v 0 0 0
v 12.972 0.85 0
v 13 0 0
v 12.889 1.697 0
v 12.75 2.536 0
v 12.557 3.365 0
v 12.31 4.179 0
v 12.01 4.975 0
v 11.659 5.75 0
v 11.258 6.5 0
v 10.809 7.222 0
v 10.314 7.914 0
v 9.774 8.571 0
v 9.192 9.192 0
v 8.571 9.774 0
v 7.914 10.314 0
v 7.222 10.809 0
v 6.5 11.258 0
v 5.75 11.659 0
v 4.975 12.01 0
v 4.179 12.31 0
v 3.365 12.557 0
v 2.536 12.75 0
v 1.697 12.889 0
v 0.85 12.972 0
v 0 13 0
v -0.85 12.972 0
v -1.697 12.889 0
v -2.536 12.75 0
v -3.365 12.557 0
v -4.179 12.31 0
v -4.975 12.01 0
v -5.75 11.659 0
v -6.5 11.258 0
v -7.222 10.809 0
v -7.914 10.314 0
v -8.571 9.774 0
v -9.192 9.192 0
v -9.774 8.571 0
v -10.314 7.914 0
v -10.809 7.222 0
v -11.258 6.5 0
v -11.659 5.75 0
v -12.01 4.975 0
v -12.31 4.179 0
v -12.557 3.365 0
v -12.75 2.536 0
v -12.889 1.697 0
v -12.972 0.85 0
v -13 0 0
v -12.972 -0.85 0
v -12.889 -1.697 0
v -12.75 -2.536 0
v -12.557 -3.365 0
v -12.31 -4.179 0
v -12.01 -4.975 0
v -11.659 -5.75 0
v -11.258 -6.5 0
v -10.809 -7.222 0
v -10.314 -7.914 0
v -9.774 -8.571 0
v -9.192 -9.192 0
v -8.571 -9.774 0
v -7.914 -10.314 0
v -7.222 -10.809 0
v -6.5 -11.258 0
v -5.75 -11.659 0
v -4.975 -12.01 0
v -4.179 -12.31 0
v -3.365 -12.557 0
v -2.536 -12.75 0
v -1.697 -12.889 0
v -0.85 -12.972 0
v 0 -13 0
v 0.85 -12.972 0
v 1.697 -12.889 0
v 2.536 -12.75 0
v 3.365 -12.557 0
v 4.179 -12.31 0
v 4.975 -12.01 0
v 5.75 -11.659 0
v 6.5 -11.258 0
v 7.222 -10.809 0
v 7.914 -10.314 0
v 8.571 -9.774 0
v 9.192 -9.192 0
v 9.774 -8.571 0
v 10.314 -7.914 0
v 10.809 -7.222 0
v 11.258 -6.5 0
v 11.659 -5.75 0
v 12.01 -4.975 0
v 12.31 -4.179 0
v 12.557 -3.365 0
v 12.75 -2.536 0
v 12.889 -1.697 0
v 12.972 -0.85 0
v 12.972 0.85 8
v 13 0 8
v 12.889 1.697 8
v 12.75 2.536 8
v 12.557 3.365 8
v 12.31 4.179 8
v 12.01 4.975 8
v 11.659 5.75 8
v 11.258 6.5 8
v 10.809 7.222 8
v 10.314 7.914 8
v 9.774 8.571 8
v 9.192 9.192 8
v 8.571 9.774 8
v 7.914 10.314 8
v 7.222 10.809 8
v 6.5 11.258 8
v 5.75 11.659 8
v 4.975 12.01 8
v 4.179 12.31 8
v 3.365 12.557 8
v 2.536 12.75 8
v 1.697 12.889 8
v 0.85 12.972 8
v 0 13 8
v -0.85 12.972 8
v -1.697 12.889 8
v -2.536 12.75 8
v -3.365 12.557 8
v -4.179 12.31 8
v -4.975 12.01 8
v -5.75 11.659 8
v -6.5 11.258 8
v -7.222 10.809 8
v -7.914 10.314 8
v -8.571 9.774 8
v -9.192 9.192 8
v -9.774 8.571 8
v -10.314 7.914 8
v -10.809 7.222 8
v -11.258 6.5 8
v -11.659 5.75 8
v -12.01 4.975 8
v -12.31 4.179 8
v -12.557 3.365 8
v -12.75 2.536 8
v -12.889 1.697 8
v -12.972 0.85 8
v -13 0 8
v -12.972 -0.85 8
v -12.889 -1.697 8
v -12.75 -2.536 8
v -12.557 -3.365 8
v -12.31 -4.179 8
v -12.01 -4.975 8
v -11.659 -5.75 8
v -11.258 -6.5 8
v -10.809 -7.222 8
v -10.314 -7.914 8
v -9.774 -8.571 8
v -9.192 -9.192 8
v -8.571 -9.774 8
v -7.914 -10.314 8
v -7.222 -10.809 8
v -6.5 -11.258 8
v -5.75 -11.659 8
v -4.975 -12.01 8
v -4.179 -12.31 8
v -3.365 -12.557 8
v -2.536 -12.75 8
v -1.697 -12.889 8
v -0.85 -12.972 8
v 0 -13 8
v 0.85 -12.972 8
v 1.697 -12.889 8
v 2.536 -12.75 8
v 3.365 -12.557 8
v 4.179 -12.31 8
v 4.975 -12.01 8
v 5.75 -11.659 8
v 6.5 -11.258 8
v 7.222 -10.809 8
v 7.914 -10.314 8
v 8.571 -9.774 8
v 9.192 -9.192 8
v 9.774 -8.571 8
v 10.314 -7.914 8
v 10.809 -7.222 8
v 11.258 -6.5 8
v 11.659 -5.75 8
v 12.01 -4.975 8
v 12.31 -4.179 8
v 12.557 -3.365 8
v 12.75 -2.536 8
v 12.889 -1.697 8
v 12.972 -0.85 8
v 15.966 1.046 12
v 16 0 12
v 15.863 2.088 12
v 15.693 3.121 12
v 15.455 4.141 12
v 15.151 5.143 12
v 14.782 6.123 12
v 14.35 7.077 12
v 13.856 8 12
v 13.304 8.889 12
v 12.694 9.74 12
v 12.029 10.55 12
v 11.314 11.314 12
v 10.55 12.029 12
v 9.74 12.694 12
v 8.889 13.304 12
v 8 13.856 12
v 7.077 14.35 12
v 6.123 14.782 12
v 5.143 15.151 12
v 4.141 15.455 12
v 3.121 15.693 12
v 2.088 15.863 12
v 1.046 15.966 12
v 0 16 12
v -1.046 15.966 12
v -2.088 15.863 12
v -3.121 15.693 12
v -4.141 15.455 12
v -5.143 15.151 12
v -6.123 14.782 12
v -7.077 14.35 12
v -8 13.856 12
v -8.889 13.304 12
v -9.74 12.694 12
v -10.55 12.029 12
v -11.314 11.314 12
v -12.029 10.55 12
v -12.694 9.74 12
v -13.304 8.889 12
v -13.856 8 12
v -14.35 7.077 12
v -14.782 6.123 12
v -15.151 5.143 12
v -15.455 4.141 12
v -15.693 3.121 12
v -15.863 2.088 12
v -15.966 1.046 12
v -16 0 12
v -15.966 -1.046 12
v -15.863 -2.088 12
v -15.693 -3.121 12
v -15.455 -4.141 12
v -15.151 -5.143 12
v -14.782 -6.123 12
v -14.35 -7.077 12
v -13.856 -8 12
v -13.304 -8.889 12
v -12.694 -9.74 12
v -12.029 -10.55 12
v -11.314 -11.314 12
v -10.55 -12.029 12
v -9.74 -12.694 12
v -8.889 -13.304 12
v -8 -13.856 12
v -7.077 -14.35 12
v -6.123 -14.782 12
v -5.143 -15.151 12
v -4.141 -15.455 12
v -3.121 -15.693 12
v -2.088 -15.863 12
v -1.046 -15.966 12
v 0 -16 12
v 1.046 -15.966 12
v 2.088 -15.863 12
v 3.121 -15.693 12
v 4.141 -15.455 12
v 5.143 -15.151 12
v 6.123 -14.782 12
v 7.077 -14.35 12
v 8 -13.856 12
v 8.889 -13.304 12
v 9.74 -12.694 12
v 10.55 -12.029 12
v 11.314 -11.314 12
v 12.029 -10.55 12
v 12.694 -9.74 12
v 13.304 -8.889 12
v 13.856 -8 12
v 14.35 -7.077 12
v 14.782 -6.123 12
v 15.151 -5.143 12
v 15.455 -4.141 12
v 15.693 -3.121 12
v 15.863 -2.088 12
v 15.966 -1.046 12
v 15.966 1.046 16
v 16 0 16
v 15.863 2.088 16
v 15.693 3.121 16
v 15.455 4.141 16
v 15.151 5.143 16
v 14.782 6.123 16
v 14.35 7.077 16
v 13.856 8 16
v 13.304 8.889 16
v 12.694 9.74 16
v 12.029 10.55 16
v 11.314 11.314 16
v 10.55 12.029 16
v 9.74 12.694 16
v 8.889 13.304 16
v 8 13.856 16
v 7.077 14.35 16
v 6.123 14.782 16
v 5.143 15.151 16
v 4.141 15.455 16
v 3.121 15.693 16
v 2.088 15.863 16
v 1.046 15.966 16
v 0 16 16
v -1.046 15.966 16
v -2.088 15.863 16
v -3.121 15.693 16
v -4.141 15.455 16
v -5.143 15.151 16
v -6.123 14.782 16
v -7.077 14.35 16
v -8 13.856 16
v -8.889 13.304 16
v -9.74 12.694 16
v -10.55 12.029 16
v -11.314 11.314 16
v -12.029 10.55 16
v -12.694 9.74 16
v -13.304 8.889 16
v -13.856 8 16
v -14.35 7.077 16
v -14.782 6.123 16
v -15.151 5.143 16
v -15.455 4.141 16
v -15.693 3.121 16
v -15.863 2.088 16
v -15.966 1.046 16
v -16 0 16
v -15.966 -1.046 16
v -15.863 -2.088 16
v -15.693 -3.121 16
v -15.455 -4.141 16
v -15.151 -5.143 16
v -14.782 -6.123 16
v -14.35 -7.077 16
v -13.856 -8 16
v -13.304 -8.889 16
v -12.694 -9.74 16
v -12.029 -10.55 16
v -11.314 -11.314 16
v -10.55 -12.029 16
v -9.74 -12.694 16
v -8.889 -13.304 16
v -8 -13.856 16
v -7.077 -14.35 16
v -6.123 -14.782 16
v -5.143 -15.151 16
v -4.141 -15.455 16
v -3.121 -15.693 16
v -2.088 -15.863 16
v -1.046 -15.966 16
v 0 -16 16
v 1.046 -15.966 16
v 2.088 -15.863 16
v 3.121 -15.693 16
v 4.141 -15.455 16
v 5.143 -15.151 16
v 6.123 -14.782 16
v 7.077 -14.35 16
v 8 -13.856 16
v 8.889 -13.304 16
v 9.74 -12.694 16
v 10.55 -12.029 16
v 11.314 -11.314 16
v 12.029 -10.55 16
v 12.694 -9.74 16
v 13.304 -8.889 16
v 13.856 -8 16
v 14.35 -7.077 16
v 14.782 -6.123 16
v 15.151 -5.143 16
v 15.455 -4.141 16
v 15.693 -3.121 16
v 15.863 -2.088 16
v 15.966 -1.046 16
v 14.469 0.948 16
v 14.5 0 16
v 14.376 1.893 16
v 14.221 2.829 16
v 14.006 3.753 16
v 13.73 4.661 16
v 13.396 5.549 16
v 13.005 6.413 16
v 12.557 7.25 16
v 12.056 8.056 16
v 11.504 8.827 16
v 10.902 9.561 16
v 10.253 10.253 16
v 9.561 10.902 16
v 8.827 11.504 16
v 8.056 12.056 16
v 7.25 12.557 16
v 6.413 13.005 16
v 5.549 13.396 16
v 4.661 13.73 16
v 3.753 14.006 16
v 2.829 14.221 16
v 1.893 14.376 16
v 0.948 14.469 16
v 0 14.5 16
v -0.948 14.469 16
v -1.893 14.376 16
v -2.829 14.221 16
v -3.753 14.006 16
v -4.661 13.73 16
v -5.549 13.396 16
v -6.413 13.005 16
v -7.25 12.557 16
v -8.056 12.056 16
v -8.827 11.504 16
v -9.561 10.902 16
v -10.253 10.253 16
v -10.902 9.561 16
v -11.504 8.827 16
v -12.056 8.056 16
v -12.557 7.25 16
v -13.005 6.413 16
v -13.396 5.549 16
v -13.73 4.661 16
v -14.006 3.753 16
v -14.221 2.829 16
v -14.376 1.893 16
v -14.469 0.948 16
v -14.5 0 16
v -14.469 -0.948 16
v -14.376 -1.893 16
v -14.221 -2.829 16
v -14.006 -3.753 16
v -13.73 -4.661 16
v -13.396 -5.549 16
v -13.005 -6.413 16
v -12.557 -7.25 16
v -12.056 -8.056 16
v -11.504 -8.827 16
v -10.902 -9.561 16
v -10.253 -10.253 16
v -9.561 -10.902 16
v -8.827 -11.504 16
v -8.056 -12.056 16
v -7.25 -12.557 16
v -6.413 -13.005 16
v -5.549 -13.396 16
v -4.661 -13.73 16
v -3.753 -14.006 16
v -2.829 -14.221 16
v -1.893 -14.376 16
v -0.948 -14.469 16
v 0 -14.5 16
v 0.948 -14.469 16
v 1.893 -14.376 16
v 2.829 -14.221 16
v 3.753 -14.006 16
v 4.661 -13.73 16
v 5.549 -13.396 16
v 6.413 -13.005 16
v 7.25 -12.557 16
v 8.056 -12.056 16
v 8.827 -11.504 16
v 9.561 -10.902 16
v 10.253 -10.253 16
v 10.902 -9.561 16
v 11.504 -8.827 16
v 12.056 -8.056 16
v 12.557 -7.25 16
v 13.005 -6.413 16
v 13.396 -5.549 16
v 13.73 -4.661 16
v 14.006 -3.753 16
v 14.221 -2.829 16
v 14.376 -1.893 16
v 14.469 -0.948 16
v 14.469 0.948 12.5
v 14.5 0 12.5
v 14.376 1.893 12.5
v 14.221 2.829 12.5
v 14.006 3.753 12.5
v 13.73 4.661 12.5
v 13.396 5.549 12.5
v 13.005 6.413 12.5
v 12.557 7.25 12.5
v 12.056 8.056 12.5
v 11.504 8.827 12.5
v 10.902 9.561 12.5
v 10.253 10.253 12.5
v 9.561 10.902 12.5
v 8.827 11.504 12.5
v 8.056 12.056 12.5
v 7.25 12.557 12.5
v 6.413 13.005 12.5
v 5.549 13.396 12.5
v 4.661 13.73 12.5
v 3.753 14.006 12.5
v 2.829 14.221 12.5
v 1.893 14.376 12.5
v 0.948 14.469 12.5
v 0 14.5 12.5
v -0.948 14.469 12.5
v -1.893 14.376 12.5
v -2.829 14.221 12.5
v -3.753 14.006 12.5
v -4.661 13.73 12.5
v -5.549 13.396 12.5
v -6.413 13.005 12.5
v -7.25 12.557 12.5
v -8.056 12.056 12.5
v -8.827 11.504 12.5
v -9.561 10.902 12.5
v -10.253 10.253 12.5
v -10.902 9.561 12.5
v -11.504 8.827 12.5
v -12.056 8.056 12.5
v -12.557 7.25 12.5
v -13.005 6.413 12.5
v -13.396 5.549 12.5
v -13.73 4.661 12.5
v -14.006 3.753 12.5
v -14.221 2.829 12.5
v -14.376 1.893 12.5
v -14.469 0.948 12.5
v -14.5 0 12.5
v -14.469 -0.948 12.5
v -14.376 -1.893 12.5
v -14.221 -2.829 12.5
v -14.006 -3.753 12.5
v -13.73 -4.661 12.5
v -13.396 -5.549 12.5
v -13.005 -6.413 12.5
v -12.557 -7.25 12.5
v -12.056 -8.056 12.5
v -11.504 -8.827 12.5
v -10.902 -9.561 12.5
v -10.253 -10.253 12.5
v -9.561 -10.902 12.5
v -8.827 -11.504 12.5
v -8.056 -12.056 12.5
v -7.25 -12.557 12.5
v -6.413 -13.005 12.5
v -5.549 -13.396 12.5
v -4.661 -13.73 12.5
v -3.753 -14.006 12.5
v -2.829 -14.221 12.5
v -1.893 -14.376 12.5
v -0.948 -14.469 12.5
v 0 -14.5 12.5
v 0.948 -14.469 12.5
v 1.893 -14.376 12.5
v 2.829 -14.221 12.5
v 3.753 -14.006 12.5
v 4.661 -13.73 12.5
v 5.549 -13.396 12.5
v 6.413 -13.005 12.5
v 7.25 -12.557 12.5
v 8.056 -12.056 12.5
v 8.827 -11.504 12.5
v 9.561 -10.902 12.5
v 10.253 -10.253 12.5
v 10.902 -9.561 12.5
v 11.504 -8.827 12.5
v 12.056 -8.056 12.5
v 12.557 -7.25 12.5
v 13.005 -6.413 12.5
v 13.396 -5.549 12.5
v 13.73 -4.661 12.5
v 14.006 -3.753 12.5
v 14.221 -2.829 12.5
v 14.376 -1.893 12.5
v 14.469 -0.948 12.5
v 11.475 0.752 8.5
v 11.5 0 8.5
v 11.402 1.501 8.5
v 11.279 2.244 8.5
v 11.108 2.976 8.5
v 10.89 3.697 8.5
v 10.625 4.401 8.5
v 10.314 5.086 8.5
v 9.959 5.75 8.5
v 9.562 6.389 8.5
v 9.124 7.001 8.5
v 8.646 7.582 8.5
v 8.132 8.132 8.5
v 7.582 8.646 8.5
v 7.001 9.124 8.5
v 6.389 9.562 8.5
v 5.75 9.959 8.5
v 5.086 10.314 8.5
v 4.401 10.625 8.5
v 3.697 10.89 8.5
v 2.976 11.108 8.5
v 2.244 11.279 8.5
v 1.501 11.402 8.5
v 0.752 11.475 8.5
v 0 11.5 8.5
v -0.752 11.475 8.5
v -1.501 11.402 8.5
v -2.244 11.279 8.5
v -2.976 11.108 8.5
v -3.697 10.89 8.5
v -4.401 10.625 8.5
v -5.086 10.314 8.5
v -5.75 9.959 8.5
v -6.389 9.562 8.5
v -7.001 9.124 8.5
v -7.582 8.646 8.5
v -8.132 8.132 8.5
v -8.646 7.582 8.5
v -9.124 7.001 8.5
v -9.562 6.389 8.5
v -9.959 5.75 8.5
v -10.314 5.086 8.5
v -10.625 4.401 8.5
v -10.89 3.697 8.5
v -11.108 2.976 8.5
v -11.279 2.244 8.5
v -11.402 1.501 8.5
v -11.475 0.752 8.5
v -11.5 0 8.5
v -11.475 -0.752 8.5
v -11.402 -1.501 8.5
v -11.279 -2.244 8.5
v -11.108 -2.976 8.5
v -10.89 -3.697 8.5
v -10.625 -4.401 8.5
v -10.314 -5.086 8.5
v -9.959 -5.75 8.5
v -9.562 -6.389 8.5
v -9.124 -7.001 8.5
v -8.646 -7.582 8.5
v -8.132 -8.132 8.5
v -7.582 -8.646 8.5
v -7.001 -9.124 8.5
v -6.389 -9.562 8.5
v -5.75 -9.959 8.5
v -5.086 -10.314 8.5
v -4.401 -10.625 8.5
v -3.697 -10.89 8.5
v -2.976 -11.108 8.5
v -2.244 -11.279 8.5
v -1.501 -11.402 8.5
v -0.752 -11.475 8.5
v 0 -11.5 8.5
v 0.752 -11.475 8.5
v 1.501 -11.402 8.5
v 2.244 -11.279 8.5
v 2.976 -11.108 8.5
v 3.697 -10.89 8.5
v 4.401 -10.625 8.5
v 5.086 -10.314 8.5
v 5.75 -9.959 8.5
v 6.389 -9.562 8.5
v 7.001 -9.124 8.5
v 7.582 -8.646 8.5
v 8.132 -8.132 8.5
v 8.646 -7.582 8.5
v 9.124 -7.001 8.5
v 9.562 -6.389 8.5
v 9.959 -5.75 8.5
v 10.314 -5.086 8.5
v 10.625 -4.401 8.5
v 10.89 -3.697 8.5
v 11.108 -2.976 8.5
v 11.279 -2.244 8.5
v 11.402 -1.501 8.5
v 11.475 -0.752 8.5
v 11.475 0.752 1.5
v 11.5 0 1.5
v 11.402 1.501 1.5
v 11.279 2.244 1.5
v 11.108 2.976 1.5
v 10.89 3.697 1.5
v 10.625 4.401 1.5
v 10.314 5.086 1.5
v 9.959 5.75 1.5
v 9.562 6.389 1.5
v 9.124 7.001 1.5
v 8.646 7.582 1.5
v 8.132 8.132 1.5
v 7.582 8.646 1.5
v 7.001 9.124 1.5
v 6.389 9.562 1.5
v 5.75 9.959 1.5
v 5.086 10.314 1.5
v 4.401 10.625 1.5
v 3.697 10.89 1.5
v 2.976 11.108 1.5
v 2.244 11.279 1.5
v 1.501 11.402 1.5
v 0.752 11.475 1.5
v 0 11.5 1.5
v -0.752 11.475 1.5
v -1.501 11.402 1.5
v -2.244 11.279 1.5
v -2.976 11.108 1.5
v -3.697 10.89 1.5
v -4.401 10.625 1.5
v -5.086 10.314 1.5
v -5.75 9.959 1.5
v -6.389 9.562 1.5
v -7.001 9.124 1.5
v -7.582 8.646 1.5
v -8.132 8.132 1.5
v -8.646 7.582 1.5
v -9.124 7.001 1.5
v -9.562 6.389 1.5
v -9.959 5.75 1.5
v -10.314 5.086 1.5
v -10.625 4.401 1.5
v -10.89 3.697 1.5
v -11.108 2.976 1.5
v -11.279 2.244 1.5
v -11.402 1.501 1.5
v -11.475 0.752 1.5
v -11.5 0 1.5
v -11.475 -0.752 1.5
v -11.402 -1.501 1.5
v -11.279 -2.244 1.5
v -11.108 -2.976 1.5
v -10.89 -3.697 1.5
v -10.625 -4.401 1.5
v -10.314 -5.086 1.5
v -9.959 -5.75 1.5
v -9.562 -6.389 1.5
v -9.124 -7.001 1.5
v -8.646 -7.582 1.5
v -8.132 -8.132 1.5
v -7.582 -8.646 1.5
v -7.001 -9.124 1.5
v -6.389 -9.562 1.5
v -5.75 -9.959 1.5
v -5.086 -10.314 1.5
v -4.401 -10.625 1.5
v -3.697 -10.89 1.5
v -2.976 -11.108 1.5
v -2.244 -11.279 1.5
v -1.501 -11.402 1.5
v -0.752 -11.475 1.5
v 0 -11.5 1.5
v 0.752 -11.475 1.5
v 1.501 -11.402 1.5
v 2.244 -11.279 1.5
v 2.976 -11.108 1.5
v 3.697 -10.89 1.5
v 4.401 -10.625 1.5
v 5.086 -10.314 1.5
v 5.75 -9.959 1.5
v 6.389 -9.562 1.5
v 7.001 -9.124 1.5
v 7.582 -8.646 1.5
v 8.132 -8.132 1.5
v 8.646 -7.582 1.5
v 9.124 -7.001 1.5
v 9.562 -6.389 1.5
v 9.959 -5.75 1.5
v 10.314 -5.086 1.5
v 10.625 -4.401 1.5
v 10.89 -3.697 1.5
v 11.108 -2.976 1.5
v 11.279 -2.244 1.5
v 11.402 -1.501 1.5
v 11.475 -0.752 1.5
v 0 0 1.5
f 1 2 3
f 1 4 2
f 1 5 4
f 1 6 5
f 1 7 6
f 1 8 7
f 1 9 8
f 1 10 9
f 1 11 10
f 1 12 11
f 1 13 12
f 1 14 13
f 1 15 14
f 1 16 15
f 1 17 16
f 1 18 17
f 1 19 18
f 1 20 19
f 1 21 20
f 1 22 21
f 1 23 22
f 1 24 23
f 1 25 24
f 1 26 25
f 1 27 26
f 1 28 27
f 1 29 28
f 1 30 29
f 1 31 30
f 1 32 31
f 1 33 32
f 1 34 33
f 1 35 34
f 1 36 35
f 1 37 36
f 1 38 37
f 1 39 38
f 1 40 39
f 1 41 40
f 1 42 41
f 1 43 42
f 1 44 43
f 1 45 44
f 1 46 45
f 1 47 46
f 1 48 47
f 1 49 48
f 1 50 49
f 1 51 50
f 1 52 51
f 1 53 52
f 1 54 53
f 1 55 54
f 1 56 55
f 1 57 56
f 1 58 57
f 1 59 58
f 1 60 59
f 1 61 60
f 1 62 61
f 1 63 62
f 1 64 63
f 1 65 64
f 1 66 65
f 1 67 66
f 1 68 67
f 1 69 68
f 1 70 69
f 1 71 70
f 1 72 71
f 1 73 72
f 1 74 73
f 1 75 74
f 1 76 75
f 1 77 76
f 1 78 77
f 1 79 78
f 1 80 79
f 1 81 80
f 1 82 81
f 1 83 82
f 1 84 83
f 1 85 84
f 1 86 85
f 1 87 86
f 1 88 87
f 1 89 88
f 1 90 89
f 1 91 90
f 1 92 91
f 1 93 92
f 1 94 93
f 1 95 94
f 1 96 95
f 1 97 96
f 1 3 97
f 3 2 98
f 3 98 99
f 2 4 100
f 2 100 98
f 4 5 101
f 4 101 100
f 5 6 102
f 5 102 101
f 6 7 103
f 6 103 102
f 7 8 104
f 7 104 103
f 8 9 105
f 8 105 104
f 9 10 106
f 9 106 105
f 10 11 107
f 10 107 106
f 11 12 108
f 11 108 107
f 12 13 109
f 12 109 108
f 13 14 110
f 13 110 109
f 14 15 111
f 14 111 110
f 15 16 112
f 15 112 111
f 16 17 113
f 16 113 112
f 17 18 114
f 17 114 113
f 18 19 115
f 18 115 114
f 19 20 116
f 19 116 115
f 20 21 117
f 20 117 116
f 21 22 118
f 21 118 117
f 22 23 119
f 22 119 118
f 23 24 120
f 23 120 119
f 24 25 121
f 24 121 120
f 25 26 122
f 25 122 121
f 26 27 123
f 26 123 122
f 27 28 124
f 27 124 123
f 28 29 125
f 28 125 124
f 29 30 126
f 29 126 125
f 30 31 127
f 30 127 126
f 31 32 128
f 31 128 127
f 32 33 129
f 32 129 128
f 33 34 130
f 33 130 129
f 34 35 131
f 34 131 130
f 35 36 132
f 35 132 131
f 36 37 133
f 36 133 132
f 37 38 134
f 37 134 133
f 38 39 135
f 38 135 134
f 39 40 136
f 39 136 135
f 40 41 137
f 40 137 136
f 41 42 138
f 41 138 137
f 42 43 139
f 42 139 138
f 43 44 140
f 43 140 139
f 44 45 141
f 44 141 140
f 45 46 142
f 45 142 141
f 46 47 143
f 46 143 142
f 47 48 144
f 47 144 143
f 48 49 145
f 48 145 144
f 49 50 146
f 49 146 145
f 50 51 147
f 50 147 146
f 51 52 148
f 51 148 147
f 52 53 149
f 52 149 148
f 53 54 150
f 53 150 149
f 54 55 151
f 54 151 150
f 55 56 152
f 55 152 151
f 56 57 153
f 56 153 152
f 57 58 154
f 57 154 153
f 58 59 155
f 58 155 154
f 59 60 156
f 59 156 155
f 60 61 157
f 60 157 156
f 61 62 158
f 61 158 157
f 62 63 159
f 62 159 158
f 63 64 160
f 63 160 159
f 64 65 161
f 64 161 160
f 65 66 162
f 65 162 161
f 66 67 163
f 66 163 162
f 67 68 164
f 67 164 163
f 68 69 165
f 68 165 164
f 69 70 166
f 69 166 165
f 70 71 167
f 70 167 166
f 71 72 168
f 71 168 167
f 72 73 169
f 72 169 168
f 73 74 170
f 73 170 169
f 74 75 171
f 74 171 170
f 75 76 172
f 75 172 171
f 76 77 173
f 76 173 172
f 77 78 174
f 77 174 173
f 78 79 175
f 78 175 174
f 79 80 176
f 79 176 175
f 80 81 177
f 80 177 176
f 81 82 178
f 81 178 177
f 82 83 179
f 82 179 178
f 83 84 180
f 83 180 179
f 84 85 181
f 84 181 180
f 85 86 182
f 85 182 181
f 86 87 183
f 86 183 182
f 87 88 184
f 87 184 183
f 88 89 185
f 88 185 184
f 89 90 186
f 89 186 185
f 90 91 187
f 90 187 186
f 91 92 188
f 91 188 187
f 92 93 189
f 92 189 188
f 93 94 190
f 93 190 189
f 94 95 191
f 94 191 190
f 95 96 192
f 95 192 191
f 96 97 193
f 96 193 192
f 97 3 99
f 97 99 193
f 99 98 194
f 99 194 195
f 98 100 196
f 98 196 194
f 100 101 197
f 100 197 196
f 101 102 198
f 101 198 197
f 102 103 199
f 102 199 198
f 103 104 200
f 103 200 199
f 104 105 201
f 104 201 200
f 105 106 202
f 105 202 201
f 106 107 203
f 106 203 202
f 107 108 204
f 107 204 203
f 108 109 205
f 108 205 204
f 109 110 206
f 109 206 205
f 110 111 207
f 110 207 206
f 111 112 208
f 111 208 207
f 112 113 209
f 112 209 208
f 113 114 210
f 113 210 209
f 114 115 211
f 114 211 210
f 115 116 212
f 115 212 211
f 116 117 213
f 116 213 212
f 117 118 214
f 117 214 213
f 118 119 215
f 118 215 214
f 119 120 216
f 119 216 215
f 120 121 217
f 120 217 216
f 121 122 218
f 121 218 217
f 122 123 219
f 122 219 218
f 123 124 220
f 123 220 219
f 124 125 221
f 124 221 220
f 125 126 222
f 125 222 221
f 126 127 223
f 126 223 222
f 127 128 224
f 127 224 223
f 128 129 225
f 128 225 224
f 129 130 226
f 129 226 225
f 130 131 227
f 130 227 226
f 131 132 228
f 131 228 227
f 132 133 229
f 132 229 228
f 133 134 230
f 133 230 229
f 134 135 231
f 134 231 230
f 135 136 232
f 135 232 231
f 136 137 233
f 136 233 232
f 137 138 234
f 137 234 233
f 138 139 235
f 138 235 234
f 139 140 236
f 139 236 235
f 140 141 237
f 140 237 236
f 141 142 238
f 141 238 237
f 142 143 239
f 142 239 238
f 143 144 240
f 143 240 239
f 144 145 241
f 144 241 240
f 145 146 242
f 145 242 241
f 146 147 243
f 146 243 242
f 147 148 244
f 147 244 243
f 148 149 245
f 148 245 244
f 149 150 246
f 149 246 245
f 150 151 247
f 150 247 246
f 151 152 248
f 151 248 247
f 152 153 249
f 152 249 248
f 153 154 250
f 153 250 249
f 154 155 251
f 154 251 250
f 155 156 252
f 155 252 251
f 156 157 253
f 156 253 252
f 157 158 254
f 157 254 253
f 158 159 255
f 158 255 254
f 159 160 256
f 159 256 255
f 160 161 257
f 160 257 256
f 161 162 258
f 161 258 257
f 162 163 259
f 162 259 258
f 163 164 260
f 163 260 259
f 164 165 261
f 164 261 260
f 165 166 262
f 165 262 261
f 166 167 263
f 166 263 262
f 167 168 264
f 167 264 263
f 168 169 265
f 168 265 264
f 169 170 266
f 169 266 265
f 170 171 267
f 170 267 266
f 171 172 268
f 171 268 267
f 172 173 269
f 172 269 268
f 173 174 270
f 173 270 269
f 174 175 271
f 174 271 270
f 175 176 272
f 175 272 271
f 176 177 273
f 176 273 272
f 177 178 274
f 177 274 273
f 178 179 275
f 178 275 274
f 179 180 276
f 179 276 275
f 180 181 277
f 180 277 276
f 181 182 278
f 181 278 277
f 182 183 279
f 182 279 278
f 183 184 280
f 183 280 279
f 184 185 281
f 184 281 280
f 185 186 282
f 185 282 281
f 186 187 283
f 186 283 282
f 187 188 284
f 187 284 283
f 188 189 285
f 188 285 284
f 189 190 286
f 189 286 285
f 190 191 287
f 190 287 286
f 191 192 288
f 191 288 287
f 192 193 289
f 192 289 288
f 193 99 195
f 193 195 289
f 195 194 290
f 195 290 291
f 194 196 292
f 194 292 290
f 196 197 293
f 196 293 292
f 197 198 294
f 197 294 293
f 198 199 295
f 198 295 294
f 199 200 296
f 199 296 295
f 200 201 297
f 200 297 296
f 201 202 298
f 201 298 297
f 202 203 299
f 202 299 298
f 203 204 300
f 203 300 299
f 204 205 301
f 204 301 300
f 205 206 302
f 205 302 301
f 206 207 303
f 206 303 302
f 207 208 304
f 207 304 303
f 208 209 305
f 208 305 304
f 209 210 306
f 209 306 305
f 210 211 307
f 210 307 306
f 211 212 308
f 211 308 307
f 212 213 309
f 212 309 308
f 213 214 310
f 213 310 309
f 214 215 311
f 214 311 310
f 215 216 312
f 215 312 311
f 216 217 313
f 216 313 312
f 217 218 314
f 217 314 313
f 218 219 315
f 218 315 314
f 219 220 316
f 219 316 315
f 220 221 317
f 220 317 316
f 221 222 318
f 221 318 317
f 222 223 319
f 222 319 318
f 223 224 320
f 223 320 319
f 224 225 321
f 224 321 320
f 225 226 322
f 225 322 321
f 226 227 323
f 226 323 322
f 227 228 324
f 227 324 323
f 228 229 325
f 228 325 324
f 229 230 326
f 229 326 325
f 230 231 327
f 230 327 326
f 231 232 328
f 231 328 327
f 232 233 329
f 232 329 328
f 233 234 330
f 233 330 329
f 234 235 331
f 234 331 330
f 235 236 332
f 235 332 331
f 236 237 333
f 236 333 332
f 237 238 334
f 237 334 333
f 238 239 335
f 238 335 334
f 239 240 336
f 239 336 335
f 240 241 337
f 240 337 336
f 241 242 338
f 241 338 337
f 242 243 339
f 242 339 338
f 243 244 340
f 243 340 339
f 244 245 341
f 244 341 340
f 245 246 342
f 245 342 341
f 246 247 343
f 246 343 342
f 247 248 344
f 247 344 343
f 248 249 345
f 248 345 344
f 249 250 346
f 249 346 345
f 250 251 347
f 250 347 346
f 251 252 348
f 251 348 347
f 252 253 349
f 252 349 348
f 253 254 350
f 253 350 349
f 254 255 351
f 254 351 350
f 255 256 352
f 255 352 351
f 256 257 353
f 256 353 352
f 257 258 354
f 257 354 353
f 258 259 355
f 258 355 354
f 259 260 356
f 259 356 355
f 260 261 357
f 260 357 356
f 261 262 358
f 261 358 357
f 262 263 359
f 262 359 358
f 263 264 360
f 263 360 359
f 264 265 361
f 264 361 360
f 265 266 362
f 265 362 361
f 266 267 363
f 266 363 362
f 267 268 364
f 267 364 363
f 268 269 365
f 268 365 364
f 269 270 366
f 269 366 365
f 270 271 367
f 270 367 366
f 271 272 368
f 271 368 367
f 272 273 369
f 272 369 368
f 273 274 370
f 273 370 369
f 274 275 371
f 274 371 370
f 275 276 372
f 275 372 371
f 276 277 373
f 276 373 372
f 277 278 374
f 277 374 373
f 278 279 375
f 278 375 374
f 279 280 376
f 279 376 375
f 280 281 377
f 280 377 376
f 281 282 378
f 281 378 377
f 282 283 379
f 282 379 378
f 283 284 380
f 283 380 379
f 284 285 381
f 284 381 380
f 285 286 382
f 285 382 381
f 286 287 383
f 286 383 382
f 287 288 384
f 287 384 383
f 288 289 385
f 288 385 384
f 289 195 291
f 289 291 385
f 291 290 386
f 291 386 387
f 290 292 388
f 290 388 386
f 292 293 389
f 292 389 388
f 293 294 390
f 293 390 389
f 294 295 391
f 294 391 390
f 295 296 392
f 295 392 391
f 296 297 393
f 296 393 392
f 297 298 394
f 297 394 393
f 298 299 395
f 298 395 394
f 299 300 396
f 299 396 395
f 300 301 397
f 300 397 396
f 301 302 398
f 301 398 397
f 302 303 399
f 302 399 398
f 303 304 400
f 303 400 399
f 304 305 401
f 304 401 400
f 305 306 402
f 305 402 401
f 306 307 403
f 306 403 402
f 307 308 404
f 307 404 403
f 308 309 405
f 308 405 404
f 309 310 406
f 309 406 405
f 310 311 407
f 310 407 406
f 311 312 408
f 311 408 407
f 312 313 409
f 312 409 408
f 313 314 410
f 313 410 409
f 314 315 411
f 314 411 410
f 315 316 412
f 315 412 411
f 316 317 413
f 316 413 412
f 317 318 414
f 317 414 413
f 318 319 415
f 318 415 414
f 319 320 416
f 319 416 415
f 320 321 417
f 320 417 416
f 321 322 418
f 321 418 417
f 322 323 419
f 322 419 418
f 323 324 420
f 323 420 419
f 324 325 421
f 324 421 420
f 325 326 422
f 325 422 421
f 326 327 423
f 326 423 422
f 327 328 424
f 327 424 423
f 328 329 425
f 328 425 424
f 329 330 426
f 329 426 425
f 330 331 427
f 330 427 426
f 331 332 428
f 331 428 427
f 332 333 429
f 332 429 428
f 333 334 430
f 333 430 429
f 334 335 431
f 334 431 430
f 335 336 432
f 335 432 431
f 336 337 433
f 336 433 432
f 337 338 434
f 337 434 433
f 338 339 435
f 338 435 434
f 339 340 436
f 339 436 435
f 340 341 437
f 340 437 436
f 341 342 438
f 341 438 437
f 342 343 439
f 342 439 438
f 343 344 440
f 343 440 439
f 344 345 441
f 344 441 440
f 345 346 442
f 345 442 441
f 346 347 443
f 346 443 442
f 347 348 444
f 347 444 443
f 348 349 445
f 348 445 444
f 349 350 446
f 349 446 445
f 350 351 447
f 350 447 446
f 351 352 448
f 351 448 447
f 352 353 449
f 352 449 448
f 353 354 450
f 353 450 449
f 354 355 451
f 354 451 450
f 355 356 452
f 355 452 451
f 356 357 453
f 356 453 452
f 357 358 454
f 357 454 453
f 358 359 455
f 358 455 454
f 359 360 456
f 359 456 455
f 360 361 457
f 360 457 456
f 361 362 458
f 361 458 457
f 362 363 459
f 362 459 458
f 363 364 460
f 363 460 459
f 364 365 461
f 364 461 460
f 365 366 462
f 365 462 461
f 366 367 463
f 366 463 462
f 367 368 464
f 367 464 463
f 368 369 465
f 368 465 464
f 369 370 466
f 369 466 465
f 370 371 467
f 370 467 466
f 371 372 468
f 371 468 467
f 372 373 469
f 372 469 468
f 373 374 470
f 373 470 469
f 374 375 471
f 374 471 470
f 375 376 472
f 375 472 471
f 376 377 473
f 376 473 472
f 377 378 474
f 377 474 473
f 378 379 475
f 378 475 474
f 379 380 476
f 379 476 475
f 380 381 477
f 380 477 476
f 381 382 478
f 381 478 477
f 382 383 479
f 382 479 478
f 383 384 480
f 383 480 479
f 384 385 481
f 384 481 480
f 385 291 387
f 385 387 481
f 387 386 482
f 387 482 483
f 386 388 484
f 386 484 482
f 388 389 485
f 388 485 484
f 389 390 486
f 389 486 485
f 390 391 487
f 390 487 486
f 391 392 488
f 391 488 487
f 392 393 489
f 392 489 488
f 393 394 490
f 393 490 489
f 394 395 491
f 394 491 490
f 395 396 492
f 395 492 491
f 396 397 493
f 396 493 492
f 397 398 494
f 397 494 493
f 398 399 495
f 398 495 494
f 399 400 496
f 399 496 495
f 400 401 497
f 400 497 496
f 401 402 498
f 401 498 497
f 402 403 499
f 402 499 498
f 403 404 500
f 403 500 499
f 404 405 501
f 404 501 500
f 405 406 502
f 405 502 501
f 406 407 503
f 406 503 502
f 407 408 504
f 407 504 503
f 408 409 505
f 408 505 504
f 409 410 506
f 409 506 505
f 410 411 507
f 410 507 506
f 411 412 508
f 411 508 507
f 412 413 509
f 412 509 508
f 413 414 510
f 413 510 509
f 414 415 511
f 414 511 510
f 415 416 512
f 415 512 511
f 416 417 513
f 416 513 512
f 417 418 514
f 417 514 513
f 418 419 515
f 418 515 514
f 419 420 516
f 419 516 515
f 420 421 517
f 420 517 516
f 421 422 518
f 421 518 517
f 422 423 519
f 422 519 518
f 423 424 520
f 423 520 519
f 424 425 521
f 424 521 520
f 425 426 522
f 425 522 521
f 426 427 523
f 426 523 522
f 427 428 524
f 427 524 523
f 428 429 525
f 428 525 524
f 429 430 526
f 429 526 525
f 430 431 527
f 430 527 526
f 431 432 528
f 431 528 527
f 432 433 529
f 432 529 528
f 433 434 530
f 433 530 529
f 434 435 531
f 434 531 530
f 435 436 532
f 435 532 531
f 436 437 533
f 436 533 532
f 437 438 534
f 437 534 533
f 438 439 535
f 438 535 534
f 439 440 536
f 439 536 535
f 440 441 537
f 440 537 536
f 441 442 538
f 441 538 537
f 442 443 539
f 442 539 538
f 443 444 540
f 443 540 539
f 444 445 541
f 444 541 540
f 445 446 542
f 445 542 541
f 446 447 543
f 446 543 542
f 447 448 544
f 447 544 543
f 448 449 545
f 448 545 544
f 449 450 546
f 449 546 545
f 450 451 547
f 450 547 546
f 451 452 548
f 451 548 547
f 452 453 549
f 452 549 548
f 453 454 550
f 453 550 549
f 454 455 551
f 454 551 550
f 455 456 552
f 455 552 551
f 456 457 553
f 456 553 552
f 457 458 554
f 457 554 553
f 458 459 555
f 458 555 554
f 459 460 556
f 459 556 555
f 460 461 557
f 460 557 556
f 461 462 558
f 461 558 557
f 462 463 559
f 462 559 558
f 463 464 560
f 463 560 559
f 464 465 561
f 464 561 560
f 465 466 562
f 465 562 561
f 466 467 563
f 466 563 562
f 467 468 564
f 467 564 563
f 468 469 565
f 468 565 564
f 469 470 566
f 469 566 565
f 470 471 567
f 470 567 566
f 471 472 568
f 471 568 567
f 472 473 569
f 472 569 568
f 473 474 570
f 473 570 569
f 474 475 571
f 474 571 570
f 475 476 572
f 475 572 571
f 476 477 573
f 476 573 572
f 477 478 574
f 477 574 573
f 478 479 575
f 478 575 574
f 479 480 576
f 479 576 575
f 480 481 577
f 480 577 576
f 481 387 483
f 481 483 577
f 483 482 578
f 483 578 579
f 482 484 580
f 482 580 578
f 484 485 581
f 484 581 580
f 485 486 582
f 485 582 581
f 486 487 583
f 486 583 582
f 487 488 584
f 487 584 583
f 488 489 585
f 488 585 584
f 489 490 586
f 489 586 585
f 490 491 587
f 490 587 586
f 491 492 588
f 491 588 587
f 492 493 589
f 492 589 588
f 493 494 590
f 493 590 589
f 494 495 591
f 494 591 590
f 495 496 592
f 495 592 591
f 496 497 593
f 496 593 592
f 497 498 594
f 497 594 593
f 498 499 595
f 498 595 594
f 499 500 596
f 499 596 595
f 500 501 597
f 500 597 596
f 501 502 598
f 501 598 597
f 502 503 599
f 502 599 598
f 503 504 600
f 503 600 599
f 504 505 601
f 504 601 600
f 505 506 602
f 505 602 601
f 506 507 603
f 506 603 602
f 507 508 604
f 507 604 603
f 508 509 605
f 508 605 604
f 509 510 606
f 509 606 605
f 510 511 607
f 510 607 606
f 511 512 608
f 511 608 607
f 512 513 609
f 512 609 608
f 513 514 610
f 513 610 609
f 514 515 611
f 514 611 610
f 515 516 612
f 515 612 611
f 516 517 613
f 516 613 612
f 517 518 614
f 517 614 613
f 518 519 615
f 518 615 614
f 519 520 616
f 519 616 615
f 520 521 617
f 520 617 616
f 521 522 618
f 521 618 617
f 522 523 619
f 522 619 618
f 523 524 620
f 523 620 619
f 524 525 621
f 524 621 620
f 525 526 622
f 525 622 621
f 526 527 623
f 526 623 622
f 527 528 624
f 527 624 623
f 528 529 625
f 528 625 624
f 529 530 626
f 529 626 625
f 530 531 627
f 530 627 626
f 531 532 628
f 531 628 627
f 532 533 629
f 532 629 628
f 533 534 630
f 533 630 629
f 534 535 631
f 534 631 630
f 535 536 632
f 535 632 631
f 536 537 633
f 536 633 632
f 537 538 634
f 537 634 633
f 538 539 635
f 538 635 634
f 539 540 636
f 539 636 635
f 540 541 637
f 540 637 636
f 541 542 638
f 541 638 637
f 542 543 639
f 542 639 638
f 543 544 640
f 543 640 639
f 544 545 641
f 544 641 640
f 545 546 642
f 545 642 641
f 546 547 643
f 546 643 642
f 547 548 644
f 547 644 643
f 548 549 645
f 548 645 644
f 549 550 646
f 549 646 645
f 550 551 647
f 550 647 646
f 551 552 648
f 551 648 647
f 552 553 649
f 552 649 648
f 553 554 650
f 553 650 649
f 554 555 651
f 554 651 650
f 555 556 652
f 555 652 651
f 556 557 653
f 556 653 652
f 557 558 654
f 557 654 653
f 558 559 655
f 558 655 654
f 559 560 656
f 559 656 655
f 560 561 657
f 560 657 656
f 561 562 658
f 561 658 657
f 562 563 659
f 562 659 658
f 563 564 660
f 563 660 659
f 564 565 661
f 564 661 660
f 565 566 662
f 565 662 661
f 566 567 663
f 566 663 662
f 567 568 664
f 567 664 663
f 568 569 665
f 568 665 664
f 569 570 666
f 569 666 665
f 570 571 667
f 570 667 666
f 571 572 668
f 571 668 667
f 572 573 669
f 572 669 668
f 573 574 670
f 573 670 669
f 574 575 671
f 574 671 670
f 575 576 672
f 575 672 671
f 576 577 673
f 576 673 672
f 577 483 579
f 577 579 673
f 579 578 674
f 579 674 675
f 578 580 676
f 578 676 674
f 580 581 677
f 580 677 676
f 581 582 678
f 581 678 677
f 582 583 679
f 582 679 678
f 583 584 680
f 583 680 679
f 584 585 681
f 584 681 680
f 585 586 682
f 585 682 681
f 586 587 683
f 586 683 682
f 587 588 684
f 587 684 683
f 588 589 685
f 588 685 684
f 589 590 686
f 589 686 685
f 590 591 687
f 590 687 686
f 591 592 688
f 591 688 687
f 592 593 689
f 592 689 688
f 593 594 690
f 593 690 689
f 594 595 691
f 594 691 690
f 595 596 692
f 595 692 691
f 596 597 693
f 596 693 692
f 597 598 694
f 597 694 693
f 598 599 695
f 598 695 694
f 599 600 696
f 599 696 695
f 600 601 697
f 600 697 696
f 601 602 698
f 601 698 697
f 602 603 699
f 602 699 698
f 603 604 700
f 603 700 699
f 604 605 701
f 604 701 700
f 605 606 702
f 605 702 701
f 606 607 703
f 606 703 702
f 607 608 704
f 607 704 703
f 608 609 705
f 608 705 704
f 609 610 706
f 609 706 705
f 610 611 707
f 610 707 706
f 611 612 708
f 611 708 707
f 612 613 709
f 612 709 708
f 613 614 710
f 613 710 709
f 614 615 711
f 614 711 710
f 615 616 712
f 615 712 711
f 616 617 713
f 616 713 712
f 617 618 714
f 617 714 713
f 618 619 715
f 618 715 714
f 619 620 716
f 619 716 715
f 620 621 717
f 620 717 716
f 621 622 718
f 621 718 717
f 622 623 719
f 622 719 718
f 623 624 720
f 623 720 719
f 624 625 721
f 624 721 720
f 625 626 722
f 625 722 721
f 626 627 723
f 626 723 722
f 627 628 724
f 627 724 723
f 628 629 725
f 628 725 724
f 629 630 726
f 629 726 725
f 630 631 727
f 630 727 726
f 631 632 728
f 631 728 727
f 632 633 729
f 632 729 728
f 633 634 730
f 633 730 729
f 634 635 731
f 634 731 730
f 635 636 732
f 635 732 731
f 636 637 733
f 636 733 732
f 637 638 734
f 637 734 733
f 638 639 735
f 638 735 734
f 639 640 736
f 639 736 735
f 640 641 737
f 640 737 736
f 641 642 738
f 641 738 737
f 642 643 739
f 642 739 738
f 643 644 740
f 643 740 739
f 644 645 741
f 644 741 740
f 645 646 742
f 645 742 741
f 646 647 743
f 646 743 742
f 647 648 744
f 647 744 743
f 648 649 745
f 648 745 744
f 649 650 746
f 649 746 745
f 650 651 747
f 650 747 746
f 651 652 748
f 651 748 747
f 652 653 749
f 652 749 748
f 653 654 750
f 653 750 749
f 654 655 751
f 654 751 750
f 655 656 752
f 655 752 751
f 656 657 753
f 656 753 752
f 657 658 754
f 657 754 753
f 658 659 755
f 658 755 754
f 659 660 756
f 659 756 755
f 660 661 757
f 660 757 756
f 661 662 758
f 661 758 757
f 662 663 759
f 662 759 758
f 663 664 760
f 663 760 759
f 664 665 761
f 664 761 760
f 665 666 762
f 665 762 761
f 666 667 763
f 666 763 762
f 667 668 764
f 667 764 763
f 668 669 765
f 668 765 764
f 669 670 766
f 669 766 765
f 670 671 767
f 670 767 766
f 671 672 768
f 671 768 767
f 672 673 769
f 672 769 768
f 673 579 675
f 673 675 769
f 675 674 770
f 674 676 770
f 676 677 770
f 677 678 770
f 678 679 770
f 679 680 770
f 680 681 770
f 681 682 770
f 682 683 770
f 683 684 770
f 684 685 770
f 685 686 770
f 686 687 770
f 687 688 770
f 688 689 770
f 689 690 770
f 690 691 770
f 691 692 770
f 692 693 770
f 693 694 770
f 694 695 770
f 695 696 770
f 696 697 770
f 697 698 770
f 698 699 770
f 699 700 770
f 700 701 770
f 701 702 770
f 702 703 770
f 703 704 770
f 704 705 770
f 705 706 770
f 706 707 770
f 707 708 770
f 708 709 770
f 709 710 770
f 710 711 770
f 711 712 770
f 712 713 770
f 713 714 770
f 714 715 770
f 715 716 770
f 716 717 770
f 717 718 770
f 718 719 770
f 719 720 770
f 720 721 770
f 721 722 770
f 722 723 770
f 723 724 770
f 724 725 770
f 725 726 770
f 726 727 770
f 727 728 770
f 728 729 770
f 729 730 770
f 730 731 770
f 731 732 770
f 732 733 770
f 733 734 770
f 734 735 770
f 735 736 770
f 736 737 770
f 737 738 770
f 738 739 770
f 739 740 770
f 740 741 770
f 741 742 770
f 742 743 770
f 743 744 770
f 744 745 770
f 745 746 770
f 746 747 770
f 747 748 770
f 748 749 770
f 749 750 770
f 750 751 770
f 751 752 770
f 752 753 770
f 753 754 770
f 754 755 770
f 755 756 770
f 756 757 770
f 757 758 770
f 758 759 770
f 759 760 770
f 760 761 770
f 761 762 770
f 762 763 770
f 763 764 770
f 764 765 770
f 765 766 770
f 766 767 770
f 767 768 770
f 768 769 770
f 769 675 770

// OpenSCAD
// Original MechIntel educational model. CC0-1.0. Units: mm.
// Not a standardized or load-rated component.
$fn=96;
// Section points: [radius, height], mm. Edit to change the profile.
section=[[0, 0], [13, 0], [13, 8], [16, 12], [16, 16], [14.5, 16], [14.5, 12.5], [11.5, 8.5], [11.5, 1.5], [0, 1.5]];
rotate_extrude($fn=96) polygon(points=section);
